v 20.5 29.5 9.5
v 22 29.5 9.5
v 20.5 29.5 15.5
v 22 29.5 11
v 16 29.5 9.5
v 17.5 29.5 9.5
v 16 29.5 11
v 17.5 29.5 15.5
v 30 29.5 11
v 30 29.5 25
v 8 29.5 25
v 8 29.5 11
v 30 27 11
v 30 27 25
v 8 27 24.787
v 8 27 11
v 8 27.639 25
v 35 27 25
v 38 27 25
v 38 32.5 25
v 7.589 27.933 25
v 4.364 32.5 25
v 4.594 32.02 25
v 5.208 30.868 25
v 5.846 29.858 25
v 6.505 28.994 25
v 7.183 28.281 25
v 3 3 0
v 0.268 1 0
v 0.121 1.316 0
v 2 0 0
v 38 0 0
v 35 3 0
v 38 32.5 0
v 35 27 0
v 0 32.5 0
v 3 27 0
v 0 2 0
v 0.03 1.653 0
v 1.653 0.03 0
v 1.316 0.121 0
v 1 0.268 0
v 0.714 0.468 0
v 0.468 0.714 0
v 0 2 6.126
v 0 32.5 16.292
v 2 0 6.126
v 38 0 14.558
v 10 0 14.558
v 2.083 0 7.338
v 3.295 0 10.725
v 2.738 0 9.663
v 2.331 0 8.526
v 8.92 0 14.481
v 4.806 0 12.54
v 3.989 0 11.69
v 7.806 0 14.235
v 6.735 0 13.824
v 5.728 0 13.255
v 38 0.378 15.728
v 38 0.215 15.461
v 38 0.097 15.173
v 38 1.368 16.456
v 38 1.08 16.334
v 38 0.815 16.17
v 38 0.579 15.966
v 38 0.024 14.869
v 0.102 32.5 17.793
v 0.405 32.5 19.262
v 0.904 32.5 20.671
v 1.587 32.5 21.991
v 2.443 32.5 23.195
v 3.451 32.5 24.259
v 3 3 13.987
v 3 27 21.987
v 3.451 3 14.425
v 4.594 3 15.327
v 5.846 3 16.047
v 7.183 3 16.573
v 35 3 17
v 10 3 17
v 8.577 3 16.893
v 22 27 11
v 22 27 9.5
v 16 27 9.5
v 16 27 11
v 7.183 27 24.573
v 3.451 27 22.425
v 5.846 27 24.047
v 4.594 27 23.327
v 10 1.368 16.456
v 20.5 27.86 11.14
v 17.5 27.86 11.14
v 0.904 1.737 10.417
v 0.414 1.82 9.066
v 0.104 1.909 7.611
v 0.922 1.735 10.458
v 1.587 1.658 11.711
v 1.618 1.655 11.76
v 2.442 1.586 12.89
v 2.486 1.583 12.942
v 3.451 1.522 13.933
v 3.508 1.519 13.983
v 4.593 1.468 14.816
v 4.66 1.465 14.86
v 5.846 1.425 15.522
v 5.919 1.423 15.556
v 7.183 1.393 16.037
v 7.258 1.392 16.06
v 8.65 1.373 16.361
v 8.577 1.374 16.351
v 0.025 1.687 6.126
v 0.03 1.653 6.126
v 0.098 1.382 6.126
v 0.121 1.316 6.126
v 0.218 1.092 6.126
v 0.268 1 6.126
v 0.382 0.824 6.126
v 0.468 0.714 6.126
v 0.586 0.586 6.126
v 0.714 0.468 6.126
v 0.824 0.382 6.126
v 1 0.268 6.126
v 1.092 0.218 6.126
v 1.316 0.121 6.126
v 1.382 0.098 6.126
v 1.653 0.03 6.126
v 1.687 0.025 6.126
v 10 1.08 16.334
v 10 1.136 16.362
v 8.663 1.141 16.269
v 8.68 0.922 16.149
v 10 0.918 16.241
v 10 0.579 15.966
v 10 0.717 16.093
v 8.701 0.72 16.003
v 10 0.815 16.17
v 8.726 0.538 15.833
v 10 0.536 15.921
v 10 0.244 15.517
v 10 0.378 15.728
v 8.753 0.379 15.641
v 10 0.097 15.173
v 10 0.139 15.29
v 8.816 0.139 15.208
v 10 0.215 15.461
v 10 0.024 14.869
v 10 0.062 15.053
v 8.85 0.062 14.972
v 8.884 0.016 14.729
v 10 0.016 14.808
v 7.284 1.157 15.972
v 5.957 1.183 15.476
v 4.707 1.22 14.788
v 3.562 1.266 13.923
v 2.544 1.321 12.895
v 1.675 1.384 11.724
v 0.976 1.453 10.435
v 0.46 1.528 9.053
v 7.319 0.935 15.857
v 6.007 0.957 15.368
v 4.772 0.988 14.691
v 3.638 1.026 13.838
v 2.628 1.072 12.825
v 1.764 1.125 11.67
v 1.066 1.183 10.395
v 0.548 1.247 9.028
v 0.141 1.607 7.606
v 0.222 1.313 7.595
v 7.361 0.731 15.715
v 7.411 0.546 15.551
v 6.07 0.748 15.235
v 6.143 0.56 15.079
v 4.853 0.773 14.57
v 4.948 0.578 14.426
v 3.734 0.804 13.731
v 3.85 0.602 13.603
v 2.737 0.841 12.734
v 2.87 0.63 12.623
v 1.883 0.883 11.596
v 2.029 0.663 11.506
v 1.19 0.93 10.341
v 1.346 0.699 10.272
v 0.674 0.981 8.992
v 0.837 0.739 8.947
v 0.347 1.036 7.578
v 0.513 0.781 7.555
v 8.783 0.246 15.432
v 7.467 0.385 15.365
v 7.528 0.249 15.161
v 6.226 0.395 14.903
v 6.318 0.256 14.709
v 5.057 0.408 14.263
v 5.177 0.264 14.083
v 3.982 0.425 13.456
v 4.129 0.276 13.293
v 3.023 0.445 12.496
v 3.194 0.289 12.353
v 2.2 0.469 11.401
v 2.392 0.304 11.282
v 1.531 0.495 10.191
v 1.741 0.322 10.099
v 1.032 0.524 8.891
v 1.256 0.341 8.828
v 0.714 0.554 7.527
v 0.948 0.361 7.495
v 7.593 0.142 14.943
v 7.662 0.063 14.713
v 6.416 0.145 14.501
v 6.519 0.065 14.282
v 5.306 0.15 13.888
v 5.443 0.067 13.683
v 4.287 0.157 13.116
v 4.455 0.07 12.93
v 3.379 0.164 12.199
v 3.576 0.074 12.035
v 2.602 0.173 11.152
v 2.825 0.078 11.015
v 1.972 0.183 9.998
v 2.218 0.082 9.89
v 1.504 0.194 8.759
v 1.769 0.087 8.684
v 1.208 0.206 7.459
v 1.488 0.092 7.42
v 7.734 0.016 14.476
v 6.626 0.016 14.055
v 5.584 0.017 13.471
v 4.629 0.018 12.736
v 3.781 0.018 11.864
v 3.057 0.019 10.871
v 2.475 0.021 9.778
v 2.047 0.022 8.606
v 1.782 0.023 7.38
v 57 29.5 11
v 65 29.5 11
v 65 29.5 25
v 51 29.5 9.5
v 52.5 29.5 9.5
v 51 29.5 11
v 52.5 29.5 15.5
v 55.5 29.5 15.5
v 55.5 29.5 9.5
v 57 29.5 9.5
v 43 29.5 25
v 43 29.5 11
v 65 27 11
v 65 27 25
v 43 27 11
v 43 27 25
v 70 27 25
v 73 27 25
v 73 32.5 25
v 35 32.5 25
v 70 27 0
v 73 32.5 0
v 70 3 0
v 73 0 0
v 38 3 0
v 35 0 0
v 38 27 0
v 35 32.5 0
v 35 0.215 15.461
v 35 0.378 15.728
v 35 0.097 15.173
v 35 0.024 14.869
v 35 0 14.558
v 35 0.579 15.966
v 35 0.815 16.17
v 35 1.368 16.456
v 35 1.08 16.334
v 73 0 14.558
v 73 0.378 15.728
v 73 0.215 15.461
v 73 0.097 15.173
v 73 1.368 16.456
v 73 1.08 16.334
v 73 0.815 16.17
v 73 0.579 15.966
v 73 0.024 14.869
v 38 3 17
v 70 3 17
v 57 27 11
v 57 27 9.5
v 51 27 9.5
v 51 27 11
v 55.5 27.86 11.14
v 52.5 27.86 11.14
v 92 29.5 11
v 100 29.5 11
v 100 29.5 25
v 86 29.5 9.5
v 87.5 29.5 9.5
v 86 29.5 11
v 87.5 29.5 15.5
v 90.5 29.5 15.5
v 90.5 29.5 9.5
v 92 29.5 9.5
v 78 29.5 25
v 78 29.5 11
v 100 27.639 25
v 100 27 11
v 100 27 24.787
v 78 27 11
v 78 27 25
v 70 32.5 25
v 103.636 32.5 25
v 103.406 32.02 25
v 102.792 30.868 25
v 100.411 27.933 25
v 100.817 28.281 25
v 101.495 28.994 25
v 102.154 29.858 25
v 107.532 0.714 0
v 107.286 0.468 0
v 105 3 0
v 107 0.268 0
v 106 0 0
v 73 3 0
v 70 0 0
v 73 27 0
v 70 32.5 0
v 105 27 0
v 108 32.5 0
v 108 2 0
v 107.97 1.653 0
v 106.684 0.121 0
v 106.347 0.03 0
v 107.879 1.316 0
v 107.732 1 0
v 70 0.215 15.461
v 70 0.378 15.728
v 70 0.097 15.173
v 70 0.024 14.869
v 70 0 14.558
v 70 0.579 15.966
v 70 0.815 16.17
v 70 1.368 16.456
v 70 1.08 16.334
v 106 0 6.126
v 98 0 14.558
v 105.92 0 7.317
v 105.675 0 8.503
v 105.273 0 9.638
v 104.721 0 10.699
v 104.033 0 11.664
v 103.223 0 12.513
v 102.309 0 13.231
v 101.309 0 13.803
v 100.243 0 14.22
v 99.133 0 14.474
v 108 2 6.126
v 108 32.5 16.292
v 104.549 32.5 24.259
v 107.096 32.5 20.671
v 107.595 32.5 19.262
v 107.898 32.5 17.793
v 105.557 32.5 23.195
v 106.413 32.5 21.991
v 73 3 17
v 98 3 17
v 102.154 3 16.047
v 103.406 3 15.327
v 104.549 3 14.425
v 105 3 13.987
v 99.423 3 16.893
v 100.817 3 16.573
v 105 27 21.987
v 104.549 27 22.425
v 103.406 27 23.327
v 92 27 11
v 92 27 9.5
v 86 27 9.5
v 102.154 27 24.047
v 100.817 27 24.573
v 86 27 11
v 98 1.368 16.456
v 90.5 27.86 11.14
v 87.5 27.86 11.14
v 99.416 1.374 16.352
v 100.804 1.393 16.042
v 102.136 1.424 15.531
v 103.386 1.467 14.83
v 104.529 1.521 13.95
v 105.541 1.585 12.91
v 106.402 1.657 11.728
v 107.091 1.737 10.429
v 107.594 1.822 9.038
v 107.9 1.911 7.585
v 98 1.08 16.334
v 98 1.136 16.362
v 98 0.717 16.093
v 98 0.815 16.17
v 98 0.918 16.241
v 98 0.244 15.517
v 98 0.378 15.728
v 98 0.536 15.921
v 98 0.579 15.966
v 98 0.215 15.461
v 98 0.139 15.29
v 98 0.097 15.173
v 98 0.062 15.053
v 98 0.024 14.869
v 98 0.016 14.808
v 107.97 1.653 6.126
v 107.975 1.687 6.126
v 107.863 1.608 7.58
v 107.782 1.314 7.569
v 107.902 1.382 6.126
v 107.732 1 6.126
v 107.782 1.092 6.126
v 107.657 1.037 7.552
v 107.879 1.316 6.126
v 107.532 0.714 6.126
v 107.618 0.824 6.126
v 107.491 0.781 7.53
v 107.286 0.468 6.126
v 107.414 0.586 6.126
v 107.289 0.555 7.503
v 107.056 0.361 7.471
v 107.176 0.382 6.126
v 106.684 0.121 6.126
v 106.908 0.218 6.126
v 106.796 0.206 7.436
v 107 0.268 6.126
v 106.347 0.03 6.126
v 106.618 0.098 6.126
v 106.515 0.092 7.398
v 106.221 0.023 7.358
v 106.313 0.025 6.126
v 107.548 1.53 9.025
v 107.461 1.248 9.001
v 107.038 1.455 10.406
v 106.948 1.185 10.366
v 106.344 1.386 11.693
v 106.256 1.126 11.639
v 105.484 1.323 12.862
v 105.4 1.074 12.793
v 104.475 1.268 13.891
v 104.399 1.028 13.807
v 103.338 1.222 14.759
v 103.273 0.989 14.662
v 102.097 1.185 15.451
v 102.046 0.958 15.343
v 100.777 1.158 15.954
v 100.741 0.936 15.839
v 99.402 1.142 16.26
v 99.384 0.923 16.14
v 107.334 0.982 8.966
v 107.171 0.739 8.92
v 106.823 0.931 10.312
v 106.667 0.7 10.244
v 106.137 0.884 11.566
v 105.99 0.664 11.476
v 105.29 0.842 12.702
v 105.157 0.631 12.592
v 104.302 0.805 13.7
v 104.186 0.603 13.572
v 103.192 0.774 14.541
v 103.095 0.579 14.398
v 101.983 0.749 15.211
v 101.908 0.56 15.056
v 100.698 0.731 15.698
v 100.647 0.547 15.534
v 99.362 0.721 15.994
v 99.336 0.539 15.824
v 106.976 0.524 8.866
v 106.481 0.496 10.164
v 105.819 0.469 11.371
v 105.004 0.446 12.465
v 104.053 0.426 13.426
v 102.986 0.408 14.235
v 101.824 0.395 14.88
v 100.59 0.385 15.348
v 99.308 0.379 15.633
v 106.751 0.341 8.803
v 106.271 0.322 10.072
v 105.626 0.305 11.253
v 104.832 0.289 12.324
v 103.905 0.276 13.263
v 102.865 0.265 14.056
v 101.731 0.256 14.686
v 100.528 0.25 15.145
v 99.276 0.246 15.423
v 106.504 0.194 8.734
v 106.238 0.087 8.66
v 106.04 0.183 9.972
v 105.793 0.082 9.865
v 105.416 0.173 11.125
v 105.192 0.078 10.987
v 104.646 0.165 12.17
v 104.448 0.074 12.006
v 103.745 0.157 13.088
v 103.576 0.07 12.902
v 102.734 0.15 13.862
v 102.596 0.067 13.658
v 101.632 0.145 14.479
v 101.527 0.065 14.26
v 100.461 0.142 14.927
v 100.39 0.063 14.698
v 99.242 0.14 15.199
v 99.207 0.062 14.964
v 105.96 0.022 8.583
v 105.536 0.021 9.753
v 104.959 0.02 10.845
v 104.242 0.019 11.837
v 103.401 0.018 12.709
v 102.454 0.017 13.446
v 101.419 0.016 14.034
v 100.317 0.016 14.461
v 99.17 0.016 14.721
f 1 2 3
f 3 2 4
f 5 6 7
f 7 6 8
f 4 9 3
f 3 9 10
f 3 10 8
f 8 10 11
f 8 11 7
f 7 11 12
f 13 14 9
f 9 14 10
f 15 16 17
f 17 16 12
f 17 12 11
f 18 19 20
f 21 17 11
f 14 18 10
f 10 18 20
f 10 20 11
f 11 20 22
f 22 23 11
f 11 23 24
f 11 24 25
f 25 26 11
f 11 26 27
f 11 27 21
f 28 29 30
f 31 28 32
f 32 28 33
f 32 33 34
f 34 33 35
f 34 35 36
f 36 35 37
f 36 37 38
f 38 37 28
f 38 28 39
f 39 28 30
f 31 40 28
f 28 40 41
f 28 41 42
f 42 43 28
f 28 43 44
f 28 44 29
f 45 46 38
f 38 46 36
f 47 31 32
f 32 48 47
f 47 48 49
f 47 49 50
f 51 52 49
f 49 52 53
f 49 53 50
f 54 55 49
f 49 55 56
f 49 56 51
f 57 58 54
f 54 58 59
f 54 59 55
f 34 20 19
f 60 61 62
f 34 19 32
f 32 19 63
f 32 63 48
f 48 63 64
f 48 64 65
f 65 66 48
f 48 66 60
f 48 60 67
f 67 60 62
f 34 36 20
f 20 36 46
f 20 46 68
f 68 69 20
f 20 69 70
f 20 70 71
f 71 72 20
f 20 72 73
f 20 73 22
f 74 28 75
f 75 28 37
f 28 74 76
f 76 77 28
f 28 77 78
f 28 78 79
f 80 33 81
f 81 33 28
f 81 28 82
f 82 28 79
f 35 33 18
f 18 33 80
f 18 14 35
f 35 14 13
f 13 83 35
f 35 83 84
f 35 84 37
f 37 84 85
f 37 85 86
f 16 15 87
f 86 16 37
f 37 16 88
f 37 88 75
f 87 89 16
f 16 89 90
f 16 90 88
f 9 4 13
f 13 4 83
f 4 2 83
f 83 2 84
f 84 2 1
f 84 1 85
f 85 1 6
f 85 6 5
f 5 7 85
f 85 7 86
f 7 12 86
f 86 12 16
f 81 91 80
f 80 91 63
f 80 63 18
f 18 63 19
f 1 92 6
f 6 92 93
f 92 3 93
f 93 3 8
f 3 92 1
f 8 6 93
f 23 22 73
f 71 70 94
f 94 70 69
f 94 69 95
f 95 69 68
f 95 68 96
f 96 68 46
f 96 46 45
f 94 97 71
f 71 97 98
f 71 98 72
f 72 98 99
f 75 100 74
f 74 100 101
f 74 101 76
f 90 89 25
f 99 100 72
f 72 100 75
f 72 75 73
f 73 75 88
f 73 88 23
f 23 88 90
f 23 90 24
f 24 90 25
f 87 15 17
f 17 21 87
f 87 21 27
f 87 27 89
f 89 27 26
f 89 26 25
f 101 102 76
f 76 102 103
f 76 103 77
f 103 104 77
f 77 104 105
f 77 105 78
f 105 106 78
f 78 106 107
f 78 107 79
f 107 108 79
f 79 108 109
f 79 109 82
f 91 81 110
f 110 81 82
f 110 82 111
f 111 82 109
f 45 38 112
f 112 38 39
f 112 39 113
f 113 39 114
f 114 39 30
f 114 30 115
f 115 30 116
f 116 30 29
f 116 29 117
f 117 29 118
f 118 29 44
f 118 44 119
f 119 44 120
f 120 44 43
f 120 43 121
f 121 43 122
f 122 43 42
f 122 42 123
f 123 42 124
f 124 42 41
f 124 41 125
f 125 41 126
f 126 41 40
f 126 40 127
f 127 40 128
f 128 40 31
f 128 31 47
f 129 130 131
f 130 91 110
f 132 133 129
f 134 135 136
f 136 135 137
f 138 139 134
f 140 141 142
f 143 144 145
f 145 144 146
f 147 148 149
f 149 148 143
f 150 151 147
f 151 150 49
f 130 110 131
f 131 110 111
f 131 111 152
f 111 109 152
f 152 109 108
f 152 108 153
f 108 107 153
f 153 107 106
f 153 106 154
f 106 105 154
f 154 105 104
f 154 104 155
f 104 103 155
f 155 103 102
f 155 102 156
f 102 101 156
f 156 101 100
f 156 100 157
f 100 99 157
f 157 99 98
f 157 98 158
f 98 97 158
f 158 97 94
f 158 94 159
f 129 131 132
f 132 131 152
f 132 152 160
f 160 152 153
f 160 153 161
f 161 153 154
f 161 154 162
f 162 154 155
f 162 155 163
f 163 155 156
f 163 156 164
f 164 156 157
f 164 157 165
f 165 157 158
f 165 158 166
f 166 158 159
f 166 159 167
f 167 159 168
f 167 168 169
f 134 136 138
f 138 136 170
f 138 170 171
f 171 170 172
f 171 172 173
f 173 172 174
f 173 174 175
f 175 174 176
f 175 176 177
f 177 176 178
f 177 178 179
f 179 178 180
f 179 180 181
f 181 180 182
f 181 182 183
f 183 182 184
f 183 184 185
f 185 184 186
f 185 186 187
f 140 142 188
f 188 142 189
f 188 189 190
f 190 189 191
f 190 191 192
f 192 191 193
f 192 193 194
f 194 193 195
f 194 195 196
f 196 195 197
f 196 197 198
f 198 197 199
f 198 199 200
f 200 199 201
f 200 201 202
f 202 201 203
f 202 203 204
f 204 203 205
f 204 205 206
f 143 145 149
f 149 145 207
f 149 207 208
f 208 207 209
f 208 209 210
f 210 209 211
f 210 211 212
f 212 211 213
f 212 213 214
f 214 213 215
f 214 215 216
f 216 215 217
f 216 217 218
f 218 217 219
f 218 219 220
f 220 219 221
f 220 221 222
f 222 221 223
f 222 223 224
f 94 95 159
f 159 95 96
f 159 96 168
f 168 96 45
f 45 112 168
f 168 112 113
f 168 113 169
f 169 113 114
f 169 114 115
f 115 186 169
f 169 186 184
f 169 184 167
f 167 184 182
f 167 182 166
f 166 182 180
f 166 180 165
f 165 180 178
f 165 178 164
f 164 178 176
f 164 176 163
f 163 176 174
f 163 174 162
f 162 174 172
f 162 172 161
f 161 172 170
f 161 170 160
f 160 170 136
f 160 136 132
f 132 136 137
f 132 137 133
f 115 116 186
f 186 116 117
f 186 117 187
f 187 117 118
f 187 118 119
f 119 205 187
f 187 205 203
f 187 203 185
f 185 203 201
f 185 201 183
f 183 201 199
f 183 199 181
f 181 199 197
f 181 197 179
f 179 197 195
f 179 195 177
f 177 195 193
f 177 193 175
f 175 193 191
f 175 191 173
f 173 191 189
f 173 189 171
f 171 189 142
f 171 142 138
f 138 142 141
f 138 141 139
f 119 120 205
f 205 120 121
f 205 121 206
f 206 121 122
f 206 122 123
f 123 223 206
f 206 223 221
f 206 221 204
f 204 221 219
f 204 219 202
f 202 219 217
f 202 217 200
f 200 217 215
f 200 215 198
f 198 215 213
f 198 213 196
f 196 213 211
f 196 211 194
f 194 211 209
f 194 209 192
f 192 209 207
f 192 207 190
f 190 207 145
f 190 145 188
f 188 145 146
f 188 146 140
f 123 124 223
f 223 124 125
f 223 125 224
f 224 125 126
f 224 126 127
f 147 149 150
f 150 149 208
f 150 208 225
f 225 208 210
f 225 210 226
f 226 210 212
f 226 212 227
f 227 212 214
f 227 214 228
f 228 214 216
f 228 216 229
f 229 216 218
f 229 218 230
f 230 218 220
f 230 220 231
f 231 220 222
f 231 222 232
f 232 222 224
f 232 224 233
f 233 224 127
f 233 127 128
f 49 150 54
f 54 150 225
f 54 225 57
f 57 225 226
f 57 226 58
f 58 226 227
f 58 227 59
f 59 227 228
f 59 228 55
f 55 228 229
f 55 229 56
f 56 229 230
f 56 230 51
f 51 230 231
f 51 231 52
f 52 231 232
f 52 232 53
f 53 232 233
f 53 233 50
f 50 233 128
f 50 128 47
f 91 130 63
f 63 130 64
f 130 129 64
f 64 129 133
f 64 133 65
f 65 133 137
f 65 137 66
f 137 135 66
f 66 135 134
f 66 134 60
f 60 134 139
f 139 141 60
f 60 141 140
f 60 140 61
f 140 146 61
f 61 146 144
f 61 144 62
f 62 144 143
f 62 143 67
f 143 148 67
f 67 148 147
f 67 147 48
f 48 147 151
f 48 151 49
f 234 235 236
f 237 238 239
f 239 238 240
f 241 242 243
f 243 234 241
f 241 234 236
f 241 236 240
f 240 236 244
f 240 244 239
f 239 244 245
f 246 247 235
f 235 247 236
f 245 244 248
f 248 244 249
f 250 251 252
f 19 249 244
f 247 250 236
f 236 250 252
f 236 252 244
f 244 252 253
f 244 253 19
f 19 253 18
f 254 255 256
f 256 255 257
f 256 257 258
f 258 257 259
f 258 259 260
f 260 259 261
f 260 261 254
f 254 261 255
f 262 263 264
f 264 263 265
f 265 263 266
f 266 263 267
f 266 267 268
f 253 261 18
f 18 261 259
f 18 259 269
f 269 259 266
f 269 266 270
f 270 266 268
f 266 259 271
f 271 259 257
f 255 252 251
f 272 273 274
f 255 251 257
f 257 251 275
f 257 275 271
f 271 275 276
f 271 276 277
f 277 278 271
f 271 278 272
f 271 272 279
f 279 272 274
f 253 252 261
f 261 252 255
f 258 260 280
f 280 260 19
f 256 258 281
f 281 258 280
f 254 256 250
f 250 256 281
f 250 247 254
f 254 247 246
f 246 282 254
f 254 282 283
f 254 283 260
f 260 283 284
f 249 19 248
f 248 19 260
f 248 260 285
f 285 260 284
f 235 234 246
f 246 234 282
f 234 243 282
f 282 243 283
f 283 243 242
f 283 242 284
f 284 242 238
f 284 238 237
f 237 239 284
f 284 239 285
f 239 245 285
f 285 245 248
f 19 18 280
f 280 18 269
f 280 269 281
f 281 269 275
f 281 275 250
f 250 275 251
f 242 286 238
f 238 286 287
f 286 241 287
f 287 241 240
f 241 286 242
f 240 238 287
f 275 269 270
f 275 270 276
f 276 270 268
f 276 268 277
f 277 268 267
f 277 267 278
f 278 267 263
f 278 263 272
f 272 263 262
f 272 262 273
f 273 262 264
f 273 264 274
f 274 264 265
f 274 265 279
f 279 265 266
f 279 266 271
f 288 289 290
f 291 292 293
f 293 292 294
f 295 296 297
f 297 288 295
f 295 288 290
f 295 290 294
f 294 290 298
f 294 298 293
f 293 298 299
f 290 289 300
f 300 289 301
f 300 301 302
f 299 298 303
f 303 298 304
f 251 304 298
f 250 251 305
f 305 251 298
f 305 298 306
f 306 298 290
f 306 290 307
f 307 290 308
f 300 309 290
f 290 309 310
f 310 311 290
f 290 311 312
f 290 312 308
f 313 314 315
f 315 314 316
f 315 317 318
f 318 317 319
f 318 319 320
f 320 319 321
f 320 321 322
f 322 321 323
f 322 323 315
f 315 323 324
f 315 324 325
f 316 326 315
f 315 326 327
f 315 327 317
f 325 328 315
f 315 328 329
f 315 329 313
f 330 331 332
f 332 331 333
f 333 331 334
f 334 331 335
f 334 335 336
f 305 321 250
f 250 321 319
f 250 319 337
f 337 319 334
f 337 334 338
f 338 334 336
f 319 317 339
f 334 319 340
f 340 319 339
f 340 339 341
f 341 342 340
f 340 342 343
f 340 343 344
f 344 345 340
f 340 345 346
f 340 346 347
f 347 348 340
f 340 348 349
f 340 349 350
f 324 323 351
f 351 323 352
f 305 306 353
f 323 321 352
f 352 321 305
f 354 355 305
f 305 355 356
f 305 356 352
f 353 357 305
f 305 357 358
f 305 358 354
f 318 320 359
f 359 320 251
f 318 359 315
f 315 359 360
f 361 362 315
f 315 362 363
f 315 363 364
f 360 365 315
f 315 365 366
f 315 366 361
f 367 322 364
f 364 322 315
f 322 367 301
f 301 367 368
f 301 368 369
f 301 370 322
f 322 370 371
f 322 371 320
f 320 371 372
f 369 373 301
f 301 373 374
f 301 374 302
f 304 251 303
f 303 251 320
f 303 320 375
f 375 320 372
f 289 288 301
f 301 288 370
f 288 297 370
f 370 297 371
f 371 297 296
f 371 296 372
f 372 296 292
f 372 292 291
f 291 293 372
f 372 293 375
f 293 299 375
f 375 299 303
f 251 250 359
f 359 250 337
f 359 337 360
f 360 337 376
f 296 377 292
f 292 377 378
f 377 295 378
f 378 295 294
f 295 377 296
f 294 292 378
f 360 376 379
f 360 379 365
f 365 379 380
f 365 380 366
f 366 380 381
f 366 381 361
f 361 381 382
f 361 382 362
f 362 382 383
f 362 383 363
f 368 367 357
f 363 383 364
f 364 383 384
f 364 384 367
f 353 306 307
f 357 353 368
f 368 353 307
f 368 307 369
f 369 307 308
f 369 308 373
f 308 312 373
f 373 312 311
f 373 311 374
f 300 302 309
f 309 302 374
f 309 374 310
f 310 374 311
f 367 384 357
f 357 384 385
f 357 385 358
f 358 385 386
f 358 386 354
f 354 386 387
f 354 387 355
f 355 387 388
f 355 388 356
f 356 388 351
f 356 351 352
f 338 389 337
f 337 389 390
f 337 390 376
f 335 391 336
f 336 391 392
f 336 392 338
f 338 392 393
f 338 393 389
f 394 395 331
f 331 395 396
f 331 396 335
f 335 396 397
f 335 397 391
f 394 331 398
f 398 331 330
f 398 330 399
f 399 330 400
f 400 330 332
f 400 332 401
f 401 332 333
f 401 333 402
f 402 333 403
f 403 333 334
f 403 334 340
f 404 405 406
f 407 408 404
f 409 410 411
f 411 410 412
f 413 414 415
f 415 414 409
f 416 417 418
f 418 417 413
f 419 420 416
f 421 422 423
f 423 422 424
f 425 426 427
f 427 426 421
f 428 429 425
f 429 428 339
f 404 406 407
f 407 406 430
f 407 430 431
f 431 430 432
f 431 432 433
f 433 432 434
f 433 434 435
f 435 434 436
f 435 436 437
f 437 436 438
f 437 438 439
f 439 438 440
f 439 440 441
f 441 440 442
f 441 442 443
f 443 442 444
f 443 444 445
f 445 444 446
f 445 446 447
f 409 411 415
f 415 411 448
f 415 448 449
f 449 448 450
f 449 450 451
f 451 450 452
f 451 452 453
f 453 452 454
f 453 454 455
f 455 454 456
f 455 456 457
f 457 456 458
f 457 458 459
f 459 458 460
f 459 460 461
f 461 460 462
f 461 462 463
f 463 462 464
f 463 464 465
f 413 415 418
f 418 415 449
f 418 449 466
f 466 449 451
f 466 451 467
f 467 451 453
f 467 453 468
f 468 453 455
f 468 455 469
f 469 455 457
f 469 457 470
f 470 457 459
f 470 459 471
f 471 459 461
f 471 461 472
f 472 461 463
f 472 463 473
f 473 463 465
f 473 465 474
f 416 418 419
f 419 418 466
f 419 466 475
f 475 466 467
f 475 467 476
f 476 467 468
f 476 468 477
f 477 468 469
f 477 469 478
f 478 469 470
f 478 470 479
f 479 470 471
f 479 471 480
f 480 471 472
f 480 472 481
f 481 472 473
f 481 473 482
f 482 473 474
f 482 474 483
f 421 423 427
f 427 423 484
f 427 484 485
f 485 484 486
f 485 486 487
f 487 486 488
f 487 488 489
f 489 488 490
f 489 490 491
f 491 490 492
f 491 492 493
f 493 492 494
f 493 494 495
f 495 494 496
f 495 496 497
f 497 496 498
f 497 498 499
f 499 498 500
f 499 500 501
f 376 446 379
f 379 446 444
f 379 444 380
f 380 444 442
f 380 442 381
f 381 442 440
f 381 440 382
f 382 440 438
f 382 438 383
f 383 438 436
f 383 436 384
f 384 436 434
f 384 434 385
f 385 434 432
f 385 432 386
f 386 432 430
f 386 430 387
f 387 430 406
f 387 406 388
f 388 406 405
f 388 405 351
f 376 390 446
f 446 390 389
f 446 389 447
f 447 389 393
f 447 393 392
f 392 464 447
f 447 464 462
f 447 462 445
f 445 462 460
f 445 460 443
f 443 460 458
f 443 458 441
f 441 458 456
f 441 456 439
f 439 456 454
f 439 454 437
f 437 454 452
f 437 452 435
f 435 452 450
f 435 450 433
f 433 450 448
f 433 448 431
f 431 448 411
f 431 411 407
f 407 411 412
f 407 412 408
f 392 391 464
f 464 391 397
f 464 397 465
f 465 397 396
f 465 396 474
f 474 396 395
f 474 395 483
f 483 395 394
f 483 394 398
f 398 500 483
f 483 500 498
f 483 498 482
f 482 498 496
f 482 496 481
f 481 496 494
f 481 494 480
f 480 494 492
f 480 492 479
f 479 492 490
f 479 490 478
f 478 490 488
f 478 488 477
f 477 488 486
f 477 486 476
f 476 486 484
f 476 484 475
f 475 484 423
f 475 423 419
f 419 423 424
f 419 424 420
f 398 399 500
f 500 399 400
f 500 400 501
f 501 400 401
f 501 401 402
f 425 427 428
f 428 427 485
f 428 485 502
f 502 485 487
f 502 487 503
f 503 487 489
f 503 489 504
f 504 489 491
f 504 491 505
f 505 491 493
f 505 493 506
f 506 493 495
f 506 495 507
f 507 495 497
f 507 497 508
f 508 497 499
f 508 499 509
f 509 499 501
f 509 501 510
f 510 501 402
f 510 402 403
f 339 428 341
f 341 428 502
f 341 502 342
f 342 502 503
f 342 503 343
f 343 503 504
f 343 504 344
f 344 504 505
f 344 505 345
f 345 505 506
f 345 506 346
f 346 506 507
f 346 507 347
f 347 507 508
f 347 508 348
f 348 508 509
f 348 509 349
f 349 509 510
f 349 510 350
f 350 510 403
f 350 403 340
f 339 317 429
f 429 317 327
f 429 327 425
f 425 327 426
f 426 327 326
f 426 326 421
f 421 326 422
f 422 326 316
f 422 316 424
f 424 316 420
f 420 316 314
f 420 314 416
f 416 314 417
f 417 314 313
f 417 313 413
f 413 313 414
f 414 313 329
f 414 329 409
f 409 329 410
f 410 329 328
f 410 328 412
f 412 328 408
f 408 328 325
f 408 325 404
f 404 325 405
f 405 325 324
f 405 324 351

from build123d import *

# Parameters (mm, degrees)
SKETCH1_W           = 38
SKETCH1_H           = 32.5
BOSS_EXTRUDE1_DEPTH = 25
BOSS_EXTRUDE2_DEPTH = 2.5
CUT_EXTRUDE1_REACH  = 57.904
BOSS_EXTRUDE3_START = 1.5
BOSS_EXTRUDE3_DEPTH = 3
LPATTERN1_COUNT     = 3
LPATTERN1_PITCH     = 35
FILLET1_R           = 10
FILLET2_R           = 10
FILLET3_R           = 2
FILLET4_R           = 2
FILLET5_R           = 2


with BuildPart() as part:
    # Sketch1 → Boss-Extrude1 (new body)
    with BuildSketch(Plane.XY):
        with Locations((19, 16.25)):
            Rectangle(SKETCH1_W, SKETCH1_H)
        Polygon((8, 27), (8, 29.5), (30, 29.5), (30, 27), (35, 27), (35, 3), (3, 3), (3, 27), align=None, mode=Mode.SUBTRACT)
    extrude(amount=BOSS_EXTRUDE1_DEPTH)

    # Sketch3 → Boss-Extrude2 (add)
    with BuildSketch(Plane.XZ.offset(-29.5)):
        Polygon((8, 0), (30, 0), (30, 11), (22, 11), (22, 9.5), (16, 9.5), (16, 11), (8, 11), align=None)
    extrude(amount=BOSS_EXTRUDE2_DEPTH)

    # Cut-Extrude1: up to this face of the body (flat: up to its plane)
    cut_extrude1_end = Plane(part.part.faces().sort_by_distance((38, 16.25, 12.5))[0])
    # Sketch4 → Cut-Extrude1 (cut, up to the picked face)
    with BuildSketch(Plane.ZY, mode=Mode.PRIVATE) as cut_extrude1_sk1:
        Polygon((25, 27), (16, 0), (25, 0), align=None)
    cut_extrude1_tool1 = split(extrude(cut_extrude1_sk1.sketch, amount=-CUT_EXTRUDE1_REACH, mode=Mode.PRIVATE), bisect_by=cut_extrude1_end, keep=Keep.BOTH, mode=Mode.PRIVATE)
    add(cut_extrude1_tool1.solids().sort_by(Axis((0, 9, 22), (1, 0, 0)))[0], mode=Mode.SUBTRACT)

    # Sketch6 → Boss-Extrude3 (add)
    with BuildSketch(Plane.ZY.offset(-22).offset(BOSS_EXTRUDE3_START)):
        Polygon((9.5, 29.5), (11.14, 27.86), (15.5, 29.5), align=None)
    extrude(amount=BOSS_EXTRUDE3_DEPTH)


with BuildPart() as lpattern1_1:
    # LPattern1: pattern copy
    add(part.part.moved(Location(Vector(1, 0, 0) * (1 * LPATTERN1_PITCH))))

    # Fillet4
    fillet4_edges = [lpattern1_1.edges().sort_by_distance(p)[0] for p in [
        (54, 0, 16),
    ]]
    fillet(fillet4_edges, radius=FILLET4_R)


with BuildPart() as lpattern1_2:
    # LPattern1: pattern copy
    add(part.part.moved(Location(Vector(1, 0, 0) * (2 * LPATTERN1_PITCH))))

    # Fillet1
    # the kernel refuses this fillet: 10 mm, written as the material it takes off along each edge
    with BuildSketch(Plane(origin=(108, 50.717082451, 32.90569415), x_dir=(0, 0.316227766016838, -0.9486832980505138), z_dir=(0, -0.9486832980505139, -0.316227766016838))) as fillet1_piece_1:
        with BuildLine():
            CenterArc((FILLET1_R, -FILLET1_R), FILLET1_R, 90, 90)
            Line((0, -FILLET1_R), (0, 0))
            Line((0, 0), (FILLET1_R, 0))
        make_face()
    extrude(amount=78.460498942, mode=Mode.SUBTRACT)

    # Fillet5
    fillet5_edges = [lpattern1_2.edges().sort_by_distance(p)[0] for p in [
        (84, 0, 16),
        (108, 0, 2.729537233),
        (105.163482835, 0, 12.813930283),
    ]]
    fillet(fillet5_edges, radius=FILLET5_R)


with BuildPart() as part_1:
    add(part.part)

    # Fillet2
    # the kernel refuses this fillet: 10 mm, written as the material it takes off along each edge
    with BuildSketch(Plane(origin=(0, 50.717082451, 32.90569415), x_dir=(1, 0, 0), z_dir=(0, -0.9486832980505139, -0.316227766016838))) as fillet2_piece_1:
        with BuildLine():
            CenterArc((FILLET2_R, -FILLET2_R), FILLET2_R, 90, 90)
            Line((0, -FILLET2_R), (0, 0))
            Line((0, 0), (FILLET2_R, 0))
        make_face()
    extrude(amount=78.460498942, mode=Mode.SUBTRACT)

    # Fillet3
    fillet3_edges = [part_1.edges().sort_by_distance(p)[0] for p in [
        (0, 0, 2.729537233),
        (2.836517165, 0, 12.813930283),
        (24, 0, 16),
    ]]
    fillet(fillet3_edges, radius=FILLET3_R)


solid = Compound([lpattern1_1.part, lpattern1_2.part, part_1.part])
